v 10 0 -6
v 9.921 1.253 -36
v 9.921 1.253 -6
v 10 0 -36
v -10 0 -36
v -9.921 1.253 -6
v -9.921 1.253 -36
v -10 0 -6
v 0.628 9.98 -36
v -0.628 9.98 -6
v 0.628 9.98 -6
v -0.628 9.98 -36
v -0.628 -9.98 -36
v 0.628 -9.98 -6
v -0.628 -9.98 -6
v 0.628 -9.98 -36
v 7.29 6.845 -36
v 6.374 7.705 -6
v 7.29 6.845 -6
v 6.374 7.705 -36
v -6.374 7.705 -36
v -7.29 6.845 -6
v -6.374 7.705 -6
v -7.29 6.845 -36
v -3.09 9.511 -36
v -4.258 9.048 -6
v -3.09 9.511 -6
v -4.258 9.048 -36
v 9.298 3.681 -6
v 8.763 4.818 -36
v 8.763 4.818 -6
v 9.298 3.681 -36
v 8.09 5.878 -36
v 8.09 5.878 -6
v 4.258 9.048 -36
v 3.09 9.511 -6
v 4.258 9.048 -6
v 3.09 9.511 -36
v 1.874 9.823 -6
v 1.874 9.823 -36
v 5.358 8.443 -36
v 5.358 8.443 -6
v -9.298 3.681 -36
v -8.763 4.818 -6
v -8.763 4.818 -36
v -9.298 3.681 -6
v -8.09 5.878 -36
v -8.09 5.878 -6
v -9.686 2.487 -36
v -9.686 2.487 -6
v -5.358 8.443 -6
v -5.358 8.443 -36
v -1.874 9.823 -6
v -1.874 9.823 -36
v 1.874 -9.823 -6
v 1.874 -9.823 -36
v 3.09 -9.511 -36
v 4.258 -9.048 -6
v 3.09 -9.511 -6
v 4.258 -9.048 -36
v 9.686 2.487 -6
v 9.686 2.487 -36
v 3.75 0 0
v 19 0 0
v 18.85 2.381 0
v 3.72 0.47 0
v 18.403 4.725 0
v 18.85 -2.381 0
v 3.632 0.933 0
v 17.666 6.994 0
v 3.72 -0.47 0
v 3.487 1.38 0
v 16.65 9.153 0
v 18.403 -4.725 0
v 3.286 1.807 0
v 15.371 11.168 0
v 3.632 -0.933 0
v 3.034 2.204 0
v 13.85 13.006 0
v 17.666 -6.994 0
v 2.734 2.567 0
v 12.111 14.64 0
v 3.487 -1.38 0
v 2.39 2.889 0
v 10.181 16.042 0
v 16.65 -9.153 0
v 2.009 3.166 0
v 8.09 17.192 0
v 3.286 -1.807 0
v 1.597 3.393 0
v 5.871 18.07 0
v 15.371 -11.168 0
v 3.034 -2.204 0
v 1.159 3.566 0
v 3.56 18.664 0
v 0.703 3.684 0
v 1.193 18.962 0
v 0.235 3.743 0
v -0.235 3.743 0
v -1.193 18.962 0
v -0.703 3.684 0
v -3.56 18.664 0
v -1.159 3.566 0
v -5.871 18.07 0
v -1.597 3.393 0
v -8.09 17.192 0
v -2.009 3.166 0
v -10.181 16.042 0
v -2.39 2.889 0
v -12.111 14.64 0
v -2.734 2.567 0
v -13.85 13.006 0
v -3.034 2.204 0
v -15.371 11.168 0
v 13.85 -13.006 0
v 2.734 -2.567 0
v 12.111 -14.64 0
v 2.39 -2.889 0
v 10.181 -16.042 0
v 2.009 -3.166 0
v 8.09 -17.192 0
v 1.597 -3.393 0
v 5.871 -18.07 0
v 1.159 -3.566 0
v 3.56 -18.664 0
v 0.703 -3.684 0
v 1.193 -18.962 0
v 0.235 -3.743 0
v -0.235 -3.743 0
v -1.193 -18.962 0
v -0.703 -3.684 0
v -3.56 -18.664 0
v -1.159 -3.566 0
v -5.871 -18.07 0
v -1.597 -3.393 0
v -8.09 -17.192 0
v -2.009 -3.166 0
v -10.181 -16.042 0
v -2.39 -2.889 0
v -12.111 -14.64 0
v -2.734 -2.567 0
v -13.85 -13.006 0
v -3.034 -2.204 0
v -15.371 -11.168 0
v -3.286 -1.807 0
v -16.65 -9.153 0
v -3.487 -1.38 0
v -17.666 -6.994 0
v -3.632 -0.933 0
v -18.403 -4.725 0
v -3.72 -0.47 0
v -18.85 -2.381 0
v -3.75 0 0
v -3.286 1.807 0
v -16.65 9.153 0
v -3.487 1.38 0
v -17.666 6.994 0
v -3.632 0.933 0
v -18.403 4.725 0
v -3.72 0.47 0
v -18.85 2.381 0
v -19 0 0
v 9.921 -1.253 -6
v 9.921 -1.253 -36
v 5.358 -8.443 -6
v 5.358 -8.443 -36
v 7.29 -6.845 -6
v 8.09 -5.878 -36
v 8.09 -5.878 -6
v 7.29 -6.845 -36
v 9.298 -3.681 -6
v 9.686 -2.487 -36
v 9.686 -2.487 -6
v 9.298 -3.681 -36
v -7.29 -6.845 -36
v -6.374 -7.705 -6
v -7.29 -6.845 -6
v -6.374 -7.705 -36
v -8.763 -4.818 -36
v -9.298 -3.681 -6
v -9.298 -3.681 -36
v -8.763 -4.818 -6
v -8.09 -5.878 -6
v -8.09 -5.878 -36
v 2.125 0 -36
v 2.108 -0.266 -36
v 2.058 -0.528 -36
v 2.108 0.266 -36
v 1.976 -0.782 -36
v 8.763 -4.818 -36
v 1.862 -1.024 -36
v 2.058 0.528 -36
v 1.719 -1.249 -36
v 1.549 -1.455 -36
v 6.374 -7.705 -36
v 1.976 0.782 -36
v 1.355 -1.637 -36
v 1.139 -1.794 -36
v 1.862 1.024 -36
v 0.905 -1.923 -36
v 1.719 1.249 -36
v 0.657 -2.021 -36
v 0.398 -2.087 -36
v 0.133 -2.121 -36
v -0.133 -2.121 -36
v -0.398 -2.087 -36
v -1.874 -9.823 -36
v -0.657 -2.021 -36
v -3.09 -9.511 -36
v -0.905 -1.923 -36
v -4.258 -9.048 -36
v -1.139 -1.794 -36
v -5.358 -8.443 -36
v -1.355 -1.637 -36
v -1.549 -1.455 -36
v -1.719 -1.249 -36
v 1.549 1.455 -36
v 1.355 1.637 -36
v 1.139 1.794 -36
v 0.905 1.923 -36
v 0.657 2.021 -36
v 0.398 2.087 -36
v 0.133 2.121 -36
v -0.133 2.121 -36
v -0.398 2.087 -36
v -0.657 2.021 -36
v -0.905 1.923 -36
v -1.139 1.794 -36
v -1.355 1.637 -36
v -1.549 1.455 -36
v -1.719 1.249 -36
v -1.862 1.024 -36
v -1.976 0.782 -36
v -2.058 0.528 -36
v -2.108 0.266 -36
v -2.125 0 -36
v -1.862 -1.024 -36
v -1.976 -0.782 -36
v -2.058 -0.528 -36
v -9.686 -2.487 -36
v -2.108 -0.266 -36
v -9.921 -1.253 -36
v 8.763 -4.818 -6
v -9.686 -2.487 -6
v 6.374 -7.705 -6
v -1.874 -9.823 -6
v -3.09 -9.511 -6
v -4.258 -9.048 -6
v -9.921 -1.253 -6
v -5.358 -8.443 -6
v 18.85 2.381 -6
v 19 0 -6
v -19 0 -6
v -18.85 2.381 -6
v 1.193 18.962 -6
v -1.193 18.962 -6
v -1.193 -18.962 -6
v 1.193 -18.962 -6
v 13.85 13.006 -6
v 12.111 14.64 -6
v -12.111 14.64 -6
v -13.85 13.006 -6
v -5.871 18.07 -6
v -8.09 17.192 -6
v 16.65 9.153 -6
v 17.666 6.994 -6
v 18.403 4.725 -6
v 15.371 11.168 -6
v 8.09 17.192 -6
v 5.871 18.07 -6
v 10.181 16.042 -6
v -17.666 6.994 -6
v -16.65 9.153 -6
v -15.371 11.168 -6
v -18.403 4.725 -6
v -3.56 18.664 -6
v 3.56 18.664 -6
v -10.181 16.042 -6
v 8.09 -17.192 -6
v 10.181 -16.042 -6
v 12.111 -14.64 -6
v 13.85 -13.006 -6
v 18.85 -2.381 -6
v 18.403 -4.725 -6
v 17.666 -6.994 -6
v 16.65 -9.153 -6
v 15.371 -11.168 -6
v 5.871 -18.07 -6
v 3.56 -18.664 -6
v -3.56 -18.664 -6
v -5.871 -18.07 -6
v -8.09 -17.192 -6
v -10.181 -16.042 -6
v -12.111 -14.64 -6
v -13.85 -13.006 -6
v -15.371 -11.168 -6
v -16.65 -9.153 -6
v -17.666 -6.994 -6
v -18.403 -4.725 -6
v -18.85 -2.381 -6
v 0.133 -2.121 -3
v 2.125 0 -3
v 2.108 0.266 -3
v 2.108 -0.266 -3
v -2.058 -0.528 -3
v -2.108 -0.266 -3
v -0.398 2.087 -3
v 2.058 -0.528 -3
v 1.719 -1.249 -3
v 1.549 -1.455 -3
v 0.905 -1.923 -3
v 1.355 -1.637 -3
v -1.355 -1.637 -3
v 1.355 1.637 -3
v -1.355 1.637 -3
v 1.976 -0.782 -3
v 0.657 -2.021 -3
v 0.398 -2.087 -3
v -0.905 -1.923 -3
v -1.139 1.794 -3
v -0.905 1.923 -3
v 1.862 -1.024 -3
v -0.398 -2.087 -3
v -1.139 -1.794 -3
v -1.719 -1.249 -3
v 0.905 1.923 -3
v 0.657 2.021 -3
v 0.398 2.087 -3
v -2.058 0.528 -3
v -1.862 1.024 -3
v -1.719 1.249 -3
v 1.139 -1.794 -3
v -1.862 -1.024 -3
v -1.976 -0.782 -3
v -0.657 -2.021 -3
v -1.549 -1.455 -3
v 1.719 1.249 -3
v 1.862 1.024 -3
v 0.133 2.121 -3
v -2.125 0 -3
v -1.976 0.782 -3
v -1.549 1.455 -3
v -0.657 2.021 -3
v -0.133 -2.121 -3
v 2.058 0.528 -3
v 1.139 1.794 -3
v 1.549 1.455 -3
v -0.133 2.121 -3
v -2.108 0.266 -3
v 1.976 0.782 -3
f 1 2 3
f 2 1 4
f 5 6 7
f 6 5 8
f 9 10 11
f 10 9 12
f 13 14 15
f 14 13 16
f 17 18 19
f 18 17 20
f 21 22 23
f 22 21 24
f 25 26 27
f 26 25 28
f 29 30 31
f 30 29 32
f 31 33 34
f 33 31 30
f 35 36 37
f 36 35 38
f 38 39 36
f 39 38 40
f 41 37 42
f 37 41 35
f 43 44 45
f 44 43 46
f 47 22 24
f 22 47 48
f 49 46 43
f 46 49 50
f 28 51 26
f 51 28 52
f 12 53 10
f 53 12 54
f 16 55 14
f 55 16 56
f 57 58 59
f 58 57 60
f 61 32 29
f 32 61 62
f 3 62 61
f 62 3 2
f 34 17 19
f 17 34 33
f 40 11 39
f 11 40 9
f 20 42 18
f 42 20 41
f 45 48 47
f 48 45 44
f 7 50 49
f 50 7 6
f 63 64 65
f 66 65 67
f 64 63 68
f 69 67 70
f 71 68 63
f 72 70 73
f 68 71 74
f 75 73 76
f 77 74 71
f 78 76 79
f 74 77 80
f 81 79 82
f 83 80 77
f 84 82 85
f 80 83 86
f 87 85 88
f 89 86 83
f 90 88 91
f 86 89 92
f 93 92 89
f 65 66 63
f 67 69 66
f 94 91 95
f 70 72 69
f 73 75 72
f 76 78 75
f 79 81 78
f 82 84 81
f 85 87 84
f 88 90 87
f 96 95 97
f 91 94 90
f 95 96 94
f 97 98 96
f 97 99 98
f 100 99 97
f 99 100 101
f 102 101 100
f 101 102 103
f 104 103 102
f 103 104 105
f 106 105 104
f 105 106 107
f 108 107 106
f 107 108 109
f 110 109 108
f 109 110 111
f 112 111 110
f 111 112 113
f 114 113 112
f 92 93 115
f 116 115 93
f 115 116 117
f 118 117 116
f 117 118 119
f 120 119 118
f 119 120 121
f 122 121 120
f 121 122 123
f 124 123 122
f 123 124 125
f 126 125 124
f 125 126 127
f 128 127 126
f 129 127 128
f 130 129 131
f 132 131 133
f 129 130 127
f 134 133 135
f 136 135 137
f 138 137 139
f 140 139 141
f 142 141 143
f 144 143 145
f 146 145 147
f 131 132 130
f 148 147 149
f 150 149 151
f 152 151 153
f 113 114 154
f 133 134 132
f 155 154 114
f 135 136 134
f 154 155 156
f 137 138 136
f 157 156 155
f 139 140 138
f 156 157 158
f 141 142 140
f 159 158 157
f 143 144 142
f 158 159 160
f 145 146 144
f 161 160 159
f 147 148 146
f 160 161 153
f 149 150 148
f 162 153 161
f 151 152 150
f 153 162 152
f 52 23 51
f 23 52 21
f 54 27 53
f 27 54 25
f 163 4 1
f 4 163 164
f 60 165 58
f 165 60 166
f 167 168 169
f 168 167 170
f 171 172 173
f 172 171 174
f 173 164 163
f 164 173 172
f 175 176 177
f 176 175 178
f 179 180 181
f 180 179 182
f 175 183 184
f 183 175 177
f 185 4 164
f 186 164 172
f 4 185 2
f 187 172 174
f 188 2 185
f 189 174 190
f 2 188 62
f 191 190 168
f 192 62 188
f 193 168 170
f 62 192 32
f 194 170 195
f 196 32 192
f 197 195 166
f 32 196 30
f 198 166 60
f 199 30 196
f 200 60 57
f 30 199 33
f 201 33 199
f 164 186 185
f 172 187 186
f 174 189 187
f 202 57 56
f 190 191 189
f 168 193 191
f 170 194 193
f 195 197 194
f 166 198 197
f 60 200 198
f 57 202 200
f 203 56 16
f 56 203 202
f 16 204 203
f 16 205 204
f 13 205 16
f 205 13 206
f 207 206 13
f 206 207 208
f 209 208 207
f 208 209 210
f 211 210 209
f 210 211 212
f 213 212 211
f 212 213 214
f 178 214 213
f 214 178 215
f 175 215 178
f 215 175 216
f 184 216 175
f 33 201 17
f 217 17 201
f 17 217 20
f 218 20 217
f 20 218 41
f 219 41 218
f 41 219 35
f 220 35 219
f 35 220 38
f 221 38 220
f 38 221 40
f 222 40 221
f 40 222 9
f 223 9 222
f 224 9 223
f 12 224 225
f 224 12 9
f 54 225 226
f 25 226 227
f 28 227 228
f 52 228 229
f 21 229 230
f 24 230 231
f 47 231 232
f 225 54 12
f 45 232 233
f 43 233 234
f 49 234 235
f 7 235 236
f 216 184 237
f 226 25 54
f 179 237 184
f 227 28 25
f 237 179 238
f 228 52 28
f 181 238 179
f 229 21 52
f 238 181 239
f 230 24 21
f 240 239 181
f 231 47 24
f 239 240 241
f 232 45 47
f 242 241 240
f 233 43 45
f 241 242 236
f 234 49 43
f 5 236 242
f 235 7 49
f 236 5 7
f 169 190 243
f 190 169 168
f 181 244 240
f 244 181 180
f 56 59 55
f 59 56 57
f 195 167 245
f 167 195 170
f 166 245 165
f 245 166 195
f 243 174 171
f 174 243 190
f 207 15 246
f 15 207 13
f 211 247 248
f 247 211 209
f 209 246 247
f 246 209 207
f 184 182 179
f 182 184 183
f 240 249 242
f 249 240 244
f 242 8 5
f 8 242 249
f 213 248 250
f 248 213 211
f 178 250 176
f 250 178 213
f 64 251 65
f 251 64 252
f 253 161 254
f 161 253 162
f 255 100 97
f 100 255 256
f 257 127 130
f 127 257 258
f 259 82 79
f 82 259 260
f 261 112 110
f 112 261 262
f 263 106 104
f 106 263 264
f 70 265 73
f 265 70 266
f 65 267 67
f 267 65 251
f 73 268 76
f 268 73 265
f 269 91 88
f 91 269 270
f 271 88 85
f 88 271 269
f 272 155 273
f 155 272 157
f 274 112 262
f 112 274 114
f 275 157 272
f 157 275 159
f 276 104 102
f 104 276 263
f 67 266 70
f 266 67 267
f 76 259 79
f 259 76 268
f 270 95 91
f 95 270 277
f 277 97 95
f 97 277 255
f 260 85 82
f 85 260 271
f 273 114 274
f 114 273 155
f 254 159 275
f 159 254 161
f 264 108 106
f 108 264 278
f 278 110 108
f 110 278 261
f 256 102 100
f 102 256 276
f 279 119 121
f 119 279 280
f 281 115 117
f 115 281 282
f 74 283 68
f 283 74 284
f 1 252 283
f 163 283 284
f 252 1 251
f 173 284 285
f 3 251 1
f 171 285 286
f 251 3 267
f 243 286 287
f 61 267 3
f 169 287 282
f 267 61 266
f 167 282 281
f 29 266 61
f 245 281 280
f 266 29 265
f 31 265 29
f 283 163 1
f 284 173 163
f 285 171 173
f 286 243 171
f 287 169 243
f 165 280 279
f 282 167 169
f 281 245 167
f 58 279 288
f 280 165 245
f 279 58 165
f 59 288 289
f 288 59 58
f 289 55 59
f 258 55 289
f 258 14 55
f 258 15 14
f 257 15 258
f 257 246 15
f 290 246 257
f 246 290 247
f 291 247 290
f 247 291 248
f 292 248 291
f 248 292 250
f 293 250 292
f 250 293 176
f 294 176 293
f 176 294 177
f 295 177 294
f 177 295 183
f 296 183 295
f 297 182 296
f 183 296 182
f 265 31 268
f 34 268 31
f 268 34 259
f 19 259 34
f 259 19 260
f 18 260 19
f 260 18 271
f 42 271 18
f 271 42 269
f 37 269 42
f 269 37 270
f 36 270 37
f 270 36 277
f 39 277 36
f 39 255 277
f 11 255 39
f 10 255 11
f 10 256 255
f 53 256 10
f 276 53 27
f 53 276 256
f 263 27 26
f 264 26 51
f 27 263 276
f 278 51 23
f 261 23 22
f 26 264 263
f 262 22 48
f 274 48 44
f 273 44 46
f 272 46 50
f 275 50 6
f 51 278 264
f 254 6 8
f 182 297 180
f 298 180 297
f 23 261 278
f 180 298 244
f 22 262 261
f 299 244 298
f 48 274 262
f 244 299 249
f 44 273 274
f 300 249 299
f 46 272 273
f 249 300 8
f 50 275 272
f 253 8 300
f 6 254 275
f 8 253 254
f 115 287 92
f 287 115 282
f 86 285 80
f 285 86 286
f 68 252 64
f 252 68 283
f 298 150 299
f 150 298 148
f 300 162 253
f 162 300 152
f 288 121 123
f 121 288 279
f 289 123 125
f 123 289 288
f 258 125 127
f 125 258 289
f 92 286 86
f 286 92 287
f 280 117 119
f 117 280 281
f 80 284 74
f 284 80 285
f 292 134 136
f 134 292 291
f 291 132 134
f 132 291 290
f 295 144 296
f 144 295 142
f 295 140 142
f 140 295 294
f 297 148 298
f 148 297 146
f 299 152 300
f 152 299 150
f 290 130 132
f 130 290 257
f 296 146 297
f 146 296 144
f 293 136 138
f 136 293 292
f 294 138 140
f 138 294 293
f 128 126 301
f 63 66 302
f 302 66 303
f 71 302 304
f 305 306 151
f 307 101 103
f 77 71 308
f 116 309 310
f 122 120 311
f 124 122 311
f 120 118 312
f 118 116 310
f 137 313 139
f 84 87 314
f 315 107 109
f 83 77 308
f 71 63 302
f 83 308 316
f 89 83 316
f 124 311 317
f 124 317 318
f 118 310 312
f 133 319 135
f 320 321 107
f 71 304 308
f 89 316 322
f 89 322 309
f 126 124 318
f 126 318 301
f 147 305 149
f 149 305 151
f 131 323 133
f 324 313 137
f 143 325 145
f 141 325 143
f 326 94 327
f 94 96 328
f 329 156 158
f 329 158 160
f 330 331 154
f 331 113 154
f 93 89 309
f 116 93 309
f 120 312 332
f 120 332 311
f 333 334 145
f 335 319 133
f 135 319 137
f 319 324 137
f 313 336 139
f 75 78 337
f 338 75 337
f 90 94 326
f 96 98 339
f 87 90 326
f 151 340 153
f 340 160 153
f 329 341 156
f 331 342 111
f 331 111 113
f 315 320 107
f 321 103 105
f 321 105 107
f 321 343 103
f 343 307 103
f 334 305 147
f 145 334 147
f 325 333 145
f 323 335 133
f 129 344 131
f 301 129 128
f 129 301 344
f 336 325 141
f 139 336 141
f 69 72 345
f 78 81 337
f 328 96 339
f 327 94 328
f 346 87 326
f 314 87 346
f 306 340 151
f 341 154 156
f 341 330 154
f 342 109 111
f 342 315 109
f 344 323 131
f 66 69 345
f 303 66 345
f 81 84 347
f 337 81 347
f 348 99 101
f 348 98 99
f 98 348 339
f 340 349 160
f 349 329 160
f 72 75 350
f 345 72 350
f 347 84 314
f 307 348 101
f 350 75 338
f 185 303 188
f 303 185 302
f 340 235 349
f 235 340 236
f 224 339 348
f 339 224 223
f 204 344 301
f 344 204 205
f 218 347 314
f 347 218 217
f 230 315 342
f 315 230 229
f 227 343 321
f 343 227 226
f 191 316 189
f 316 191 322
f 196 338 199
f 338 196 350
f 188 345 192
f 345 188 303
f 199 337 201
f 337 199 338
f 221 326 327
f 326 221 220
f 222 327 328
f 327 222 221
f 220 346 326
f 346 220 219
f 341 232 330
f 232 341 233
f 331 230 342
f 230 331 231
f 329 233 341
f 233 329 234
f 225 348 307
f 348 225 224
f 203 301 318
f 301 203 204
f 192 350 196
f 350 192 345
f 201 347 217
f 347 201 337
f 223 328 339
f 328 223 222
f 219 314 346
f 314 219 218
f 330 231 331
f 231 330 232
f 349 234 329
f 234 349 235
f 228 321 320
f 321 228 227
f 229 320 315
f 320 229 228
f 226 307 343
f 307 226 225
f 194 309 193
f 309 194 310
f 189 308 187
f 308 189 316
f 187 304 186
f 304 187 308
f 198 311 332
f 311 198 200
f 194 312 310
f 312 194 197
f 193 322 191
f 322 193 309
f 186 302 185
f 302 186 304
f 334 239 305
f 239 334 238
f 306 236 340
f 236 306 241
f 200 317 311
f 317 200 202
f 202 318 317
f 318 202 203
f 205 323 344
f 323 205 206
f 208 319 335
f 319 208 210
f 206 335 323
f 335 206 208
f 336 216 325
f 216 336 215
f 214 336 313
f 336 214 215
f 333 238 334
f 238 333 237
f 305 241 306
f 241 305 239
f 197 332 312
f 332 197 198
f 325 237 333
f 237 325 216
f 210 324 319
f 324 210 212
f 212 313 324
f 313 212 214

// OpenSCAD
$fn = 50;


difference() {
	union() {
		translate(v = [0, 0, -36.0000000000]) {
			cylinder(h = 36, r = 10.0000000000);
		}
		translate(v = [0, 0, -6.0000000000]) {
			cylinder(h = 6, r = 19.0000000000);
		}
	}
	union() {
		translate(v = [0, 0, 0]) {
			rotate(a = [0, 0, 0]) {
				difference() {
					union() {
						#translate(v = [0, 0, -36.0000000000]) {
							cylinder(h = 36, r = 2.0000000000);
						}
						#translate(v = [0, 0, -3]) {
							cylinder(h = 3, r1 = 2.1250000000, r2 = 3.7500000000);
						}
						#translate(v = [0, 0, -36.0000000000]) {
							cylinder(h = 36, r = 2.1250000000);
						}
						#translate(v = [0, 0, -36.0000000000]) {
							cylinder(h = 36, r = 2.0000000000);
						}
					}
					union();
				}
			}
		}
	}
}
